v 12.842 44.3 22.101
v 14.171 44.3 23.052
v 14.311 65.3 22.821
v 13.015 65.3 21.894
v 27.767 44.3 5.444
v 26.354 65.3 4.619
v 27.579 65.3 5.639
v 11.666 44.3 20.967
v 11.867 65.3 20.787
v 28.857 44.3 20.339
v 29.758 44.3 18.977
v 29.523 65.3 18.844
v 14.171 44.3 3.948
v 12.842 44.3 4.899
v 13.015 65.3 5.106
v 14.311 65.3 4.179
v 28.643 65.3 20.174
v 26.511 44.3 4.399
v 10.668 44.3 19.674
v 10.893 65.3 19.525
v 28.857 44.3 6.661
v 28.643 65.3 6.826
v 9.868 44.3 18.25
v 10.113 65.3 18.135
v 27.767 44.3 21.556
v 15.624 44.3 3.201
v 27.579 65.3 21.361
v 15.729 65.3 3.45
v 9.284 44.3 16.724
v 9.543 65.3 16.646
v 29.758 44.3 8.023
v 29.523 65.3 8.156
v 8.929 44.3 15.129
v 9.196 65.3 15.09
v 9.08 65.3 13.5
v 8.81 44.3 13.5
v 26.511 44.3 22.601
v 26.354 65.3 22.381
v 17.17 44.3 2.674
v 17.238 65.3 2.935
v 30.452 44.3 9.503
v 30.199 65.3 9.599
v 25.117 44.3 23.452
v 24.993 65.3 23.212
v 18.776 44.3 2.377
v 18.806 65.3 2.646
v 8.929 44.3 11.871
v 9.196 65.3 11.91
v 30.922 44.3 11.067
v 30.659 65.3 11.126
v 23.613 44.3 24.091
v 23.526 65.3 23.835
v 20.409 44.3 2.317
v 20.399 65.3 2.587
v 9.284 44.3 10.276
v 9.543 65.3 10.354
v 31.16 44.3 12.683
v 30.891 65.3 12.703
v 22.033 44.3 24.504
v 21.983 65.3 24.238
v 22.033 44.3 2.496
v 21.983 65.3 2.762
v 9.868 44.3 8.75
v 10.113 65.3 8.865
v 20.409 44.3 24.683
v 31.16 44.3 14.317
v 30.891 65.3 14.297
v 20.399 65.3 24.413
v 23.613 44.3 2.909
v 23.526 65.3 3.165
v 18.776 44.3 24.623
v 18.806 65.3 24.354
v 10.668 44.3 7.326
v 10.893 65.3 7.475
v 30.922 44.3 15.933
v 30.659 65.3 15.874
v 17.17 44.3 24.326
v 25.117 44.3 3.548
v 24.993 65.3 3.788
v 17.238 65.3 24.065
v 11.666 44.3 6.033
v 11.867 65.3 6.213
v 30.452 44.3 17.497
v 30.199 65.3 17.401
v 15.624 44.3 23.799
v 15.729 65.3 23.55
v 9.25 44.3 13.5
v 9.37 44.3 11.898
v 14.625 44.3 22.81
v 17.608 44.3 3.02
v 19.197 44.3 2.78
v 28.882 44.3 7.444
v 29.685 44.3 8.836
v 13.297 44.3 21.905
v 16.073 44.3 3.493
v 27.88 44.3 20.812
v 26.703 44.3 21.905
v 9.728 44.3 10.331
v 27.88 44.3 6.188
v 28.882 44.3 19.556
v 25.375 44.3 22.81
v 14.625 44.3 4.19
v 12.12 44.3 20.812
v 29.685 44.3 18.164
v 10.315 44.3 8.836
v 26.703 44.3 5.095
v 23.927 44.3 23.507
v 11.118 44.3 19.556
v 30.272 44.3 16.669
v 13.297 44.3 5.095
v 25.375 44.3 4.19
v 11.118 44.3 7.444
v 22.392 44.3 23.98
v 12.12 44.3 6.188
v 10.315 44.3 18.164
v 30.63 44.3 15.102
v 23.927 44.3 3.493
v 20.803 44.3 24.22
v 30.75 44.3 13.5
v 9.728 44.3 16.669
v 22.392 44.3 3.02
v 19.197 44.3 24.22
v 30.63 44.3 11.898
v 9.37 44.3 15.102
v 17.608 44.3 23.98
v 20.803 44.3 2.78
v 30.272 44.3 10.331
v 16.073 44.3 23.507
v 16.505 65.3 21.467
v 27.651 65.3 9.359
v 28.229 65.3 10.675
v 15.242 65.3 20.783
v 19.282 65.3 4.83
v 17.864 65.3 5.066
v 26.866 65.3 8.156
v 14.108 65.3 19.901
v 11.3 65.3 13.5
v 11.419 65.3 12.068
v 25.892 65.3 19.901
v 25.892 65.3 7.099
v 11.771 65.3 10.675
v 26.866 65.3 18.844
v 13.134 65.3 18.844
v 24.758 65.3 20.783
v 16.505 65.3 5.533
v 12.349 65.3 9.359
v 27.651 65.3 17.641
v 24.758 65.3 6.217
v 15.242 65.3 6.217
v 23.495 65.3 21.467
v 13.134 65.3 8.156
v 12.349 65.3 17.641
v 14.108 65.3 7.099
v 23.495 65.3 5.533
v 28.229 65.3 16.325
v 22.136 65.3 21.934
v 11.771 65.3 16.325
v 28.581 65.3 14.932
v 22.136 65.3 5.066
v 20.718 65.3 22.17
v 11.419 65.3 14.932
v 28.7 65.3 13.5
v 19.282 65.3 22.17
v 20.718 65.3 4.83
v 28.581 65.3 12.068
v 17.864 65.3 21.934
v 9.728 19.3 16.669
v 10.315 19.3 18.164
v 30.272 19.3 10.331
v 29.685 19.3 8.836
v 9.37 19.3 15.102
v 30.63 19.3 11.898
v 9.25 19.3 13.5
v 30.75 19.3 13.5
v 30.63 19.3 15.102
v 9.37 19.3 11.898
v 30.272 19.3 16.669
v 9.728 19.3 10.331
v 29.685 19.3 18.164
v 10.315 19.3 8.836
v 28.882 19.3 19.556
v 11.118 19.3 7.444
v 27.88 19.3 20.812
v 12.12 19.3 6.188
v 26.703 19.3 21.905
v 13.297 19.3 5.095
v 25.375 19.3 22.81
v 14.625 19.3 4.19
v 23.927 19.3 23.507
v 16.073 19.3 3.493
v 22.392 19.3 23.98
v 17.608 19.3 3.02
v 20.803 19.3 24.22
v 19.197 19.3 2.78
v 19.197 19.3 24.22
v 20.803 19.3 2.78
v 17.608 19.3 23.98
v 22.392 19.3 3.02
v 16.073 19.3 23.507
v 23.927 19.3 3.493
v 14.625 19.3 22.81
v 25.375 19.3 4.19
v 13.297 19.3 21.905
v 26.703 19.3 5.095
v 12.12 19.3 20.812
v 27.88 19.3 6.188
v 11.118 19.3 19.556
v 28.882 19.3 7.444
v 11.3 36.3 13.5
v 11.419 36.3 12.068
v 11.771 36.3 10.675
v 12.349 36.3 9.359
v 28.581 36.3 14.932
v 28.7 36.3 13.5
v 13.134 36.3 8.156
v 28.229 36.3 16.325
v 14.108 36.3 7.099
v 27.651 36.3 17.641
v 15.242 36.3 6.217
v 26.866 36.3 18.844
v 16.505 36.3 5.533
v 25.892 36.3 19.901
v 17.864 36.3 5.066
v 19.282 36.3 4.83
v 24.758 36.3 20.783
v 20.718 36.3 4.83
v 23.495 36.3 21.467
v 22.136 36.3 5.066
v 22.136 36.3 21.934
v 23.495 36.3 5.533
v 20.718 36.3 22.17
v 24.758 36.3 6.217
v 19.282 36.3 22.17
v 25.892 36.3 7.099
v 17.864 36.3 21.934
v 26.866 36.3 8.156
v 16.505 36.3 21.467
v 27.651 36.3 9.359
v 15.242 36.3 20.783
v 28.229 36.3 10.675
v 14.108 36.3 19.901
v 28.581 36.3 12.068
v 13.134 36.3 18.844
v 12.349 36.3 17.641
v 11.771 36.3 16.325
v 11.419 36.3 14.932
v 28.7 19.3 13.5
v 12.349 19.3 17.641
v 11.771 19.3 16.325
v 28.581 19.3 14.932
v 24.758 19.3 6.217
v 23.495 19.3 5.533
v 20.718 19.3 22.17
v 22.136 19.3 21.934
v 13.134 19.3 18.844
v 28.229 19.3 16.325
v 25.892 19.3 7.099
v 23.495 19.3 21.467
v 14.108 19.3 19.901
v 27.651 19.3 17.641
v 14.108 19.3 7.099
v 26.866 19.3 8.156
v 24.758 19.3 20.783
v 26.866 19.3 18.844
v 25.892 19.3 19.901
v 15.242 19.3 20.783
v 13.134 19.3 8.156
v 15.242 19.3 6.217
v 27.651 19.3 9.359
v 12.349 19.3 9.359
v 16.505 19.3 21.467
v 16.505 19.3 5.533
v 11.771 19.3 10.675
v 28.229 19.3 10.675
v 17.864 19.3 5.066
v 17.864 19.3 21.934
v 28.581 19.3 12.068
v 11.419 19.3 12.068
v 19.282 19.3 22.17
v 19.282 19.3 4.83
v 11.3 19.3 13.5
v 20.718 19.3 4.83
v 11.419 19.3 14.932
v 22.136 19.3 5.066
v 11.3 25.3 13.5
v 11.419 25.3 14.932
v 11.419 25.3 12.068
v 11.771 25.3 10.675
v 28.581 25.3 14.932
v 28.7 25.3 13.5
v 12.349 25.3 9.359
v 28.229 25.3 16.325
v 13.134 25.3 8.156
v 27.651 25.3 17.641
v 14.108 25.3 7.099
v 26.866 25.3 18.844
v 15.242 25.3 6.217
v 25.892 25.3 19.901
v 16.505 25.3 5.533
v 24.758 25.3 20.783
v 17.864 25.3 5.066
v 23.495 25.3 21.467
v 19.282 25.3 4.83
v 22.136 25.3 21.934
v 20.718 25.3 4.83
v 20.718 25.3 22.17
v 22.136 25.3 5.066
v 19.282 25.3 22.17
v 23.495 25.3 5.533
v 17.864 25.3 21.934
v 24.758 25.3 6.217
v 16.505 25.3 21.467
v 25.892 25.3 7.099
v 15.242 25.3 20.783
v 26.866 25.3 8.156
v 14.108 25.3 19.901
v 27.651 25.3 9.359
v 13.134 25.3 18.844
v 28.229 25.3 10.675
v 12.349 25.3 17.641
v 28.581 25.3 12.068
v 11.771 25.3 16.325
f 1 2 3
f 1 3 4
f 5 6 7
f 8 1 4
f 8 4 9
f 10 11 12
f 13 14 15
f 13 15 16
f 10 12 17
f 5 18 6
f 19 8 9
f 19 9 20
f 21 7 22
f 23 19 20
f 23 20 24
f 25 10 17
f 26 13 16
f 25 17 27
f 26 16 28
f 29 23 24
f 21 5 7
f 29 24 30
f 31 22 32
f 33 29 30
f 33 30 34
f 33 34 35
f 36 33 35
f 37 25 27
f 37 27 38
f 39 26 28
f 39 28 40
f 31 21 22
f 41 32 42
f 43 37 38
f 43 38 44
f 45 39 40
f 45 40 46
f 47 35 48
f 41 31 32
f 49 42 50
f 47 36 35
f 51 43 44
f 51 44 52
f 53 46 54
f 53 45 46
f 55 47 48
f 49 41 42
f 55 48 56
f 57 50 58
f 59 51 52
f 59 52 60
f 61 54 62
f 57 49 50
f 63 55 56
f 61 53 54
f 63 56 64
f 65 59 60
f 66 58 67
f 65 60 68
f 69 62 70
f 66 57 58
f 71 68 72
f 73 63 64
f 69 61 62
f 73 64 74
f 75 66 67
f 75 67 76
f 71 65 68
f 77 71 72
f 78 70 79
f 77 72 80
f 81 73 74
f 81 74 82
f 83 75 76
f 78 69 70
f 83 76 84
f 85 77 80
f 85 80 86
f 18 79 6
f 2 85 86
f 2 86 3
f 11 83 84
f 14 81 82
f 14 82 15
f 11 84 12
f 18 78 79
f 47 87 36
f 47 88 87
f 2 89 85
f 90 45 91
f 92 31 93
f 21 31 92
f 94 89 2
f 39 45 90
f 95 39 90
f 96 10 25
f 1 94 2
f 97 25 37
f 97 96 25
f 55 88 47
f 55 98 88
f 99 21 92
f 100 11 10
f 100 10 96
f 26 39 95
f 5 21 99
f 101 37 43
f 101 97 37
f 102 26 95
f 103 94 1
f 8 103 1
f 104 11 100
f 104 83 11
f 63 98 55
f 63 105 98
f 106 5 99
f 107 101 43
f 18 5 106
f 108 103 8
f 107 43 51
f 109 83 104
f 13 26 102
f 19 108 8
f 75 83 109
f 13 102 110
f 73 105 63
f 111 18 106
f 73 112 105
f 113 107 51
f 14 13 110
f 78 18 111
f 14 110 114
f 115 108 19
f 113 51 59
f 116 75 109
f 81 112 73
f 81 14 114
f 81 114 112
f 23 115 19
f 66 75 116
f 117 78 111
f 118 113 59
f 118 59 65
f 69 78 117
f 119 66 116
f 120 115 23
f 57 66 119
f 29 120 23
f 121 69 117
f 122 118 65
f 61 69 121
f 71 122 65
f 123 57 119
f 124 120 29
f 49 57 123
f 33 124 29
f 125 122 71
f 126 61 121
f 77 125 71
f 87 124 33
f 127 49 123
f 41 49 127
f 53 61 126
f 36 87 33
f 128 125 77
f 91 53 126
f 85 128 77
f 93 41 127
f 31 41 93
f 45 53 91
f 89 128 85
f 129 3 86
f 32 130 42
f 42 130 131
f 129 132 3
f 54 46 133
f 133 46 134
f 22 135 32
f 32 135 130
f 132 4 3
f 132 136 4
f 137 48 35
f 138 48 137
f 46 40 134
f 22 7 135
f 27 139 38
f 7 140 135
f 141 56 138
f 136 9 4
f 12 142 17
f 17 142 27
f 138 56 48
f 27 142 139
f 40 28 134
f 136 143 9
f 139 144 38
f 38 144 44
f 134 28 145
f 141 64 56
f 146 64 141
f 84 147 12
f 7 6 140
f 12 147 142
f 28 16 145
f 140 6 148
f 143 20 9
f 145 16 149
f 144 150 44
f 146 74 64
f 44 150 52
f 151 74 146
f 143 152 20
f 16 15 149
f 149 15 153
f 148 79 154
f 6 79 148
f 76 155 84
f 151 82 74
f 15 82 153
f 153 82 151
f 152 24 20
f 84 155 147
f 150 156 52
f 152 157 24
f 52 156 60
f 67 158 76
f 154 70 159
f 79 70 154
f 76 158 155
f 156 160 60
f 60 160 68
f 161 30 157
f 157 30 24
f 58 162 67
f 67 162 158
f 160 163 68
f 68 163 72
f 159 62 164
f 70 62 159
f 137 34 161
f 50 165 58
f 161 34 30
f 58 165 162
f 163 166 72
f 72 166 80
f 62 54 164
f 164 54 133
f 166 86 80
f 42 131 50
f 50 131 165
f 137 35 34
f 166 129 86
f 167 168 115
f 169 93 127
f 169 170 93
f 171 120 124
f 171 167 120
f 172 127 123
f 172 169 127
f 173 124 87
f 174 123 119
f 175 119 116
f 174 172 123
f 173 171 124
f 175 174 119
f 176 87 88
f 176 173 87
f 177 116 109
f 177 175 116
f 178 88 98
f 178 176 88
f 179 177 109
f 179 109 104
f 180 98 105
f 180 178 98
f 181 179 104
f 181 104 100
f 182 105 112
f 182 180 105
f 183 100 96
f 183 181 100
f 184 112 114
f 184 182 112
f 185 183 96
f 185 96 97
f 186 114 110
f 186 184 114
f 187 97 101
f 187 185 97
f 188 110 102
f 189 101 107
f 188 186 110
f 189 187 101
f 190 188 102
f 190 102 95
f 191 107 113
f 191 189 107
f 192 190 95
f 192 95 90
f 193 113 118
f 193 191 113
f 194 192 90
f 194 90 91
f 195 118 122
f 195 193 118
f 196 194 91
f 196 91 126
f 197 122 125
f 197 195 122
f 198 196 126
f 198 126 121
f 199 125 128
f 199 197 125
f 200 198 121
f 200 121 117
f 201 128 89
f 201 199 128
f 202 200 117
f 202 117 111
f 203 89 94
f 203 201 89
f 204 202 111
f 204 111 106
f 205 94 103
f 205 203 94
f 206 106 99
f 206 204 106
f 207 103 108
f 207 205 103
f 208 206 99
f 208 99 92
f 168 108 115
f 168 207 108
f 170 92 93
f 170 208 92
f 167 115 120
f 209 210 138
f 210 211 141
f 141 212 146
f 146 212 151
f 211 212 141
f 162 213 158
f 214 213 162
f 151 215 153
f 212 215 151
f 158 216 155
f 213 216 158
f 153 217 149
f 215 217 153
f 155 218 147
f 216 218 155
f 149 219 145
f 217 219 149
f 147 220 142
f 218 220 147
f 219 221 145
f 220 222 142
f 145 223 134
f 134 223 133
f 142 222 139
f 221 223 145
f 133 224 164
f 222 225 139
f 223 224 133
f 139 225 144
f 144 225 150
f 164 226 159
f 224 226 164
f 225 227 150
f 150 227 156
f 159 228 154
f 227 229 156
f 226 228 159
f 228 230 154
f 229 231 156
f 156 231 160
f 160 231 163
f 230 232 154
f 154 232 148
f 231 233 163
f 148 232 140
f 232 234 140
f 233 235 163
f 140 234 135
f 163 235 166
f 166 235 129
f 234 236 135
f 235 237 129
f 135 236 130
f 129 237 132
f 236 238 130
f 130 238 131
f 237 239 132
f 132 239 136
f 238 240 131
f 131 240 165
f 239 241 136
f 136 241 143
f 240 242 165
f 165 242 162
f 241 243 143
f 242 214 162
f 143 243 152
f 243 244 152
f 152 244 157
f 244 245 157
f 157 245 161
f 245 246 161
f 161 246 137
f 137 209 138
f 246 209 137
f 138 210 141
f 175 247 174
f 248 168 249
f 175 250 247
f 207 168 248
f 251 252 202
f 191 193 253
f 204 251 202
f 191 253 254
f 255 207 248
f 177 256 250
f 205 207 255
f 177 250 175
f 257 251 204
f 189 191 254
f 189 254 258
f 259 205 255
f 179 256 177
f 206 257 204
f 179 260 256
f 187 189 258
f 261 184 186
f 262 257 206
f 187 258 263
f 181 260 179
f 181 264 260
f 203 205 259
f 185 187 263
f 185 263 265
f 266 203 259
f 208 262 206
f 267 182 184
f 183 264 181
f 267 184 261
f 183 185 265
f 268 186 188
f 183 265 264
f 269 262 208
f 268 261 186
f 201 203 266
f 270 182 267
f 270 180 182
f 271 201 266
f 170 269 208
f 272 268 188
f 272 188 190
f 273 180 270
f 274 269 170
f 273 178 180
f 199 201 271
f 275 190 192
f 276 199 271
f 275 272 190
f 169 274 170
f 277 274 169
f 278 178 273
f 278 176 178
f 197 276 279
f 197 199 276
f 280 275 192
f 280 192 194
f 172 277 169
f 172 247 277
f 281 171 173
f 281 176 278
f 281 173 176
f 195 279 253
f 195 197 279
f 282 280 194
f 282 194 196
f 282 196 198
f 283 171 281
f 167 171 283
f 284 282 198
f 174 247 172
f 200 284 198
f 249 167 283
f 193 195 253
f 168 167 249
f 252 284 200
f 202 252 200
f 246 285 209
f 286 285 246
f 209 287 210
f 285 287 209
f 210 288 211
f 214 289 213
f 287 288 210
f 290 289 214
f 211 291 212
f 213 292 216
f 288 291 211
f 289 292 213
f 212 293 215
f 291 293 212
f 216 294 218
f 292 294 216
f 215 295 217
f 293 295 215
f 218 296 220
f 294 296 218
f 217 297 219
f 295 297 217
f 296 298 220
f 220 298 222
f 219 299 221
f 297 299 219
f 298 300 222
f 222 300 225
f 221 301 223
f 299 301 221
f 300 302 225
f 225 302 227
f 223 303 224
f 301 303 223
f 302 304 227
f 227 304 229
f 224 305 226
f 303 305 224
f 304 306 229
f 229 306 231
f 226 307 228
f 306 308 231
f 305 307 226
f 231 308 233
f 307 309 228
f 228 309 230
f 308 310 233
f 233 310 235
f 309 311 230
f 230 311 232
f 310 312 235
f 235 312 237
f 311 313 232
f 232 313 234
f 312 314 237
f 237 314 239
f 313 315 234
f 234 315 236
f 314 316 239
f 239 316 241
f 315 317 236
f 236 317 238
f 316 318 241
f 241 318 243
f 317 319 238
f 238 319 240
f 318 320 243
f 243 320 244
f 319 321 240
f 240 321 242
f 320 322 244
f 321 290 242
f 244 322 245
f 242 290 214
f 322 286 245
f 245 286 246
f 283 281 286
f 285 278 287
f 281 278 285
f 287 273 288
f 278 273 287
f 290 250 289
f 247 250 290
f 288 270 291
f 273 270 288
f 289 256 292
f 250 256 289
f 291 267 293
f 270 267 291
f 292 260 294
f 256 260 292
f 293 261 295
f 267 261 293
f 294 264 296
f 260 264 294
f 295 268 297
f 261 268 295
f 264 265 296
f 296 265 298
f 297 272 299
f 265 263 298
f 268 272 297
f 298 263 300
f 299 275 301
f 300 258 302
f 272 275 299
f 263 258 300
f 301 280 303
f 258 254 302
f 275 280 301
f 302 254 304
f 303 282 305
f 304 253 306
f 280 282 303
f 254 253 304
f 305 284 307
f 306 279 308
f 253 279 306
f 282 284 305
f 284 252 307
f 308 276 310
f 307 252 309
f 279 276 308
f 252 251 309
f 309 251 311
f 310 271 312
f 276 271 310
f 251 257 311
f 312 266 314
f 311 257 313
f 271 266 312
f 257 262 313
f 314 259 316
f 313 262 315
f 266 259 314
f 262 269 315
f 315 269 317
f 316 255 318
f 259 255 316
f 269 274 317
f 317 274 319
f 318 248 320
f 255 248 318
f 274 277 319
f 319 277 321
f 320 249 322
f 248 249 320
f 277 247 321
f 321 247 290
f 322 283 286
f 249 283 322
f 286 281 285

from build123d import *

# Parameters (mm, degrees)
CYLINDER005_R     = 8.7
CYLINDER005_DEPTH = 40
CYLINDER003_R     = 8.7
CYLINDER003_DEPTH = 40
CYLINDER007_R     = 10.75
CYLINDER007_DEPTH = 40


with BuildPart() as outletextension:
    # Cylinder005 → Cylinder005 (new body)
    with BuildSketch(Plane(origin=(20, 65.3, 13.5), x_dir=(1, 0, 0), z_dir=(0, -1, 0))):
        Circle(CYLINDER005_R)
    extrude(amount=CYLINDER005_DEPTH)


with BuildPart() as inside:
    # Cylinder003 → Cylinder003 (new body)
    with BuildSketch(Plane(origin=(20, 36.3, 13.5), x_dir=(1, 0, 0), z_dir=(0, -1, 0))):
        Circle(CYLINDER003_R)
    extrude(amount=CYLINDER003_DEPTH)

    # Fusion001: union OutletExtension
    add(outletextension.part)


with BuildPart() as housingoutlet:
    # Cylinder007 → Cylinder007 (new body)
    with BuildSketch(Plane(origin=(20, 59.3, 13.5), x_dir=(1, 0, 0), z_dir=(0, -1, 0))):
        Circle(CYLINDER007_R)
    extrude(amount=CYLINDER007_DEPTH)


with BuildPart() as bloweroutletadapter:
    # Cone001 → Cone001 (revolve)
    with BuildSketch(Plane(origin=(20, 65.3, 13.5), x_dir=(-1, 0, 0), z_dir=(0, 0, 1))):
        Polygon((0, 0), (10.92, 0), (11.19, 21), (0, 21), align=None)
    revolve(axis=Axis((20, 65.3, 13.5), (0, -1, 0)))

    # Fusion: union HousingOutlet
    add(housingoutlet.part)

    # Cut: cut inside
    add(inside.part, mode=Mode.SUBTRACT)


solid = bloweroutletadapter.part
